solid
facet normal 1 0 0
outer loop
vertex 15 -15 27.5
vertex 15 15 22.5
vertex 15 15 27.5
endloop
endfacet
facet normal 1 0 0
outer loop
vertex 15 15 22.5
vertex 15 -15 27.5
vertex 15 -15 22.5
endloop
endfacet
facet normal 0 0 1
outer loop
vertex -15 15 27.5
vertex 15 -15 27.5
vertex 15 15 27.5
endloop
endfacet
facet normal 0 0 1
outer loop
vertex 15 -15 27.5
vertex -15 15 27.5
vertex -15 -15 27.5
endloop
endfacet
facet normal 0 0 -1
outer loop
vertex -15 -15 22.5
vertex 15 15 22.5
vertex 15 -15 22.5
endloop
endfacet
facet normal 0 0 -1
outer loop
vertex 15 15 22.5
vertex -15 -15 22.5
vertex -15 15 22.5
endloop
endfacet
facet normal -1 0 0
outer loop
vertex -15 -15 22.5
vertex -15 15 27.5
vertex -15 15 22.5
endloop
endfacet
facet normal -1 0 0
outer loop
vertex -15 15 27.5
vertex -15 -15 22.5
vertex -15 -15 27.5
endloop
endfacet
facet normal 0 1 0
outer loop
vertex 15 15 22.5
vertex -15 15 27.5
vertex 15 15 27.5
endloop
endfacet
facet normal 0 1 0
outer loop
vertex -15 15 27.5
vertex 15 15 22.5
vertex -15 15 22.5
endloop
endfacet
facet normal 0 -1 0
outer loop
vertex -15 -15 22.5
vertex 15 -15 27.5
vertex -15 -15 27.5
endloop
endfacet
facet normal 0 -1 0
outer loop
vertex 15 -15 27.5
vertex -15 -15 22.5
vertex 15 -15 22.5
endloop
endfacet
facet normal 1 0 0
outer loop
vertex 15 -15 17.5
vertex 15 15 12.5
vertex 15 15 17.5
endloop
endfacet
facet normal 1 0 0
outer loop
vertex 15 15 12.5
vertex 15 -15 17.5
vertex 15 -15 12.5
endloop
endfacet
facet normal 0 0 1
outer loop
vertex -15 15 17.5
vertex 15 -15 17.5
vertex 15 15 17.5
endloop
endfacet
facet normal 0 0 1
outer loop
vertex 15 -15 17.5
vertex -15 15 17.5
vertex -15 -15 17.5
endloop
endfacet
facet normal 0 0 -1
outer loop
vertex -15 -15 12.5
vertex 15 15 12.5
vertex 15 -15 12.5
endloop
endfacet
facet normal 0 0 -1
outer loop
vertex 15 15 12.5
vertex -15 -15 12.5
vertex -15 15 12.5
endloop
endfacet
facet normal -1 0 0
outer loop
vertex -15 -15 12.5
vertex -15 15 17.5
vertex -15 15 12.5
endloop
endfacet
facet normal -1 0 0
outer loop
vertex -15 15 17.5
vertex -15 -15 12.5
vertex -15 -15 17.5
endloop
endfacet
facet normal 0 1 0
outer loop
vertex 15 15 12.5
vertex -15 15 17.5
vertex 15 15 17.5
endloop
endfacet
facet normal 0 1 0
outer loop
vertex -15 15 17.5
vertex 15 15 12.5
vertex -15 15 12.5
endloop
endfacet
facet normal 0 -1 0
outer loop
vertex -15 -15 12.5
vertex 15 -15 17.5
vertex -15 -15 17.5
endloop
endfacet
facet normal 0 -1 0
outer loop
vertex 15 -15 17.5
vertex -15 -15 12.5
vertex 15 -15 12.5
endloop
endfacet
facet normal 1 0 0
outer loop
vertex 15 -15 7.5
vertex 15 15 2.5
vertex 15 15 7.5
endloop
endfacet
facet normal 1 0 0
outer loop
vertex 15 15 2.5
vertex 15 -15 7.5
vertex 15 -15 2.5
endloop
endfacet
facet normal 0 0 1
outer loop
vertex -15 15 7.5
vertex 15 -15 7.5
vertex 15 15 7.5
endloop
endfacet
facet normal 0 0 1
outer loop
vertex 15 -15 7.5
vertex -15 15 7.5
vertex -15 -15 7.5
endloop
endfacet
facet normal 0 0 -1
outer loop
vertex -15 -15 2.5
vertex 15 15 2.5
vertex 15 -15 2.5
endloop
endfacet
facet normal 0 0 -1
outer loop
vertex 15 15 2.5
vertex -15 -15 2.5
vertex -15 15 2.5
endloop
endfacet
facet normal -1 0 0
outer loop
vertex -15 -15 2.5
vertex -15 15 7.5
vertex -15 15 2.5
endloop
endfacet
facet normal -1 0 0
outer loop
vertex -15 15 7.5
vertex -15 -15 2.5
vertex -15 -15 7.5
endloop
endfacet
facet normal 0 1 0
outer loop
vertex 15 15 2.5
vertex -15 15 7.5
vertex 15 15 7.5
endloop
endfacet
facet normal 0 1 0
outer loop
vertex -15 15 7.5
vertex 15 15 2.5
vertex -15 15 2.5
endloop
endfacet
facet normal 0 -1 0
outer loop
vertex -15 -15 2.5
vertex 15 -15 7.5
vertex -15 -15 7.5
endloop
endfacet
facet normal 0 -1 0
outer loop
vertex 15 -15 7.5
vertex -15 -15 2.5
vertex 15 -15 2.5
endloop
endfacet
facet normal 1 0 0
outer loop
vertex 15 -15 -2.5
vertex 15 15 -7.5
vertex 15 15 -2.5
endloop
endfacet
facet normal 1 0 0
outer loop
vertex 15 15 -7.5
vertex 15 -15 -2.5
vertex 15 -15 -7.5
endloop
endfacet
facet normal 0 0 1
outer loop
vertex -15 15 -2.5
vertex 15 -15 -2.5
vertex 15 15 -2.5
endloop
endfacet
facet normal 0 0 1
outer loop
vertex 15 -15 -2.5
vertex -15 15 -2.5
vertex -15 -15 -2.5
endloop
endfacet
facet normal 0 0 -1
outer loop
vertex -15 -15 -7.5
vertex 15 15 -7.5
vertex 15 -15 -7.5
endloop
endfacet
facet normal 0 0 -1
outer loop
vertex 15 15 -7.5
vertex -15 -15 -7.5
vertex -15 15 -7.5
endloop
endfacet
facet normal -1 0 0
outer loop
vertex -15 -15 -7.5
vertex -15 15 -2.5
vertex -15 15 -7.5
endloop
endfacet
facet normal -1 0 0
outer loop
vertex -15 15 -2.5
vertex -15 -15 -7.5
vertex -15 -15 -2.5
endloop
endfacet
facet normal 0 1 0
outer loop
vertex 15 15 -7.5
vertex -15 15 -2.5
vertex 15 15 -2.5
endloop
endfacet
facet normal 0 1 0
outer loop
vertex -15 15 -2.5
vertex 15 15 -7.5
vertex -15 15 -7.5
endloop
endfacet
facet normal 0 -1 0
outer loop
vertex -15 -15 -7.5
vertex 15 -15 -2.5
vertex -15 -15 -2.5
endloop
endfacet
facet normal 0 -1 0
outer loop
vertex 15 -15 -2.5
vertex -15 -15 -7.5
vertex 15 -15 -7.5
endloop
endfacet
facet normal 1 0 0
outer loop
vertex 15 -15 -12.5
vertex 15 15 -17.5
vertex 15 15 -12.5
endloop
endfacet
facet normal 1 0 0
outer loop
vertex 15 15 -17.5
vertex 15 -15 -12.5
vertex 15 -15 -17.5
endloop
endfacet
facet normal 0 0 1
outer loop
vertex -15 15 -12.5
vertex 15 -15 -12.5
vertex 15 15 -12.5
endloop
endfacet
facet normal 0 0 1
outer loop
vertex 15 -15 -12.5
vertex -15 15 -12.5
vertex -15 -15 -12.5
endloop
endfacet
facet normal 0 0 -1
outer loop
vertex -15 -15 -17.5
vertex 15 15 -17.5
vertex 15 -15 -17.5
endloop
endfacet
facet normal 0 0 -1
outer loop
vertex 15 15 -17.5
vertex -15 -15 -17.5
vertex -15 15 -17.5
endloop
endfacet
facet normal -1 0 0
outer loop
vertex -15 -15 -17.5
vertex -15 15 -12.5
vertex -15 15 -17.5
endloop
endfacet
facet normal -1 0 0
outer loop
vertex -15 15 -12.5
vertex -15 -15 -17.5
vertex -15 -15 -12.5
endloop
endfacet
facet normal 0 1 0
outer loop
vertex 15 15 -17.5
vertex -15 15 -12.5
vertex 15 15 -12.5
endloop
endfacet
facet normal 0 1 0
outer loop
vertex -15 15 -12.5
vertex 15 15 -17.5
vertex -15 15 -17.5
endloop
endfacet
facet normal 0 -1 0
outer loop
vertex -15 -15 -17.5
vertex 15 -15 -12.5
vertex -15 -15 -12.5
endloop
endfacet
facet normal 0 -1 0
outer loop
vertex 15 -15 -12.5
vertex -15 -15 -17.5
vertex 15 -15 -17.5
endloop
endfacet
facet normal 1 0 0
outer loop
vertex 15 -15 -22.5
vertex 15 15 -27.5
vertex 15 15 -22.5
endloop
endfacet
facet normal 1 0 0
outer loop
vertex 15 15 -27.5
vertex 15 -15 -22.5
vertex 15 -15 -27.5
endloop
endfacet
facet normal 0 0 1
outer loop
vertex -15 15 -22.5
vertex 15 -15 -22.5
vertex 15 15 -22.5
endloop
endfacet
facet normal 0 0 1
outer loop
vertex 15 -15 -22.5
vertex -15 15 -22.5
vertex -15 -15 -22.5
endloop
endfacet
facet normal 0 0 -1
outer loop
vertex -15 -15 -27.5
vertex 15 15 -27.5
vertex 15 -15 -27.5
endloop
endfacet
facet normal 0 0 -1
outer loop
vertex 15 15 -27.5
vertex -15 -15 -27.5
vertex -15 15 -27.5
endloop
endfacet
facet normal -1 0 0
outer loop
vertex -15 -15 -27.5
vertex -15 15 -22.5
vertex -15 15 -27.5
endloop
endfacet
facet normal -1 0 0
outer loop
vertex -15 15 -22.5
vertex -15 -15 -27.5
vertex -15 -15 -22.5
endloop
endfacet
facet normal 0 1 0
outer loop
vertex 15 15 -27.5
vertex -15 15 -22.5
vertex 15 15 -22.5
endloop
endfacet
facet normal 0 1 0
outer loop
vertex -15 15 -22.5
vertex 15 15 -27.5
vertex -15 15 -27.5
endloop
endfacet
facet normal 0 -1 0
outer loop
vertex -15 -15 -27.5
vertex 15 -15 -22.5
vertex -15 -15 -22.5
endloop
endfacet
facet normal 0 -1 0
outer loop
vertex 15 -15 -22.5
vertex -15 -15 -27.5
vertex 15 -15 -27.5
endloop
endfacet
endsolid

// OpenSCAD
// Define the dimensions of rectangular blocks
block_sizes = [
    [30, 30, 5],  // rectangular_block_1: [width, depth, height]
    [30, 30, 5],  // rectangular_block_2: [width, depth, height]
    [30, 30, 5],  // rectangular_block_3: [width, depth, height]
    [30, 30, 5],  // rectangular_block_4: [width, depth, height]
    [30, 30, 5],  // rectangular_block_5: [width, depth, height]
    [30, 30, 5]   // rectangular_block_6: [width, depth, height]
];

// Function to create a rectangular block with specific dimensions
module rectangular_block(size) {
    cube(size, center = true);
}

// Assemble the blocks into layers based on the graph_dict
module flexible_coupling() {
    // Layer 1: rectangular_block_6 (topmost layer)
    translate([0, 0, 25]) rectangular_block(block_sizes[5]);
    
    // Layer 2: rectangular_block_5
    translate([0, 0, 15]) rectangular_block(block_sizes[4]);
    
    // Layer 3: rectangular_block_4
    translate([0, 0, 5]) rectangular_block(block_sizes[3]);
    
    // Layer 4: rectangular_block_3
    translate([0, 0, -5]) rectangular_block(block_sizes[2]);
    
    // Layer 5: rectangular_block_2
    translate([0, 0, -15]) rectangular_block(block_sizes[1]);
    
    // Layer 6: rectangular_block_1 (bottommost layer)
    translate([0, 0, -25]) rectangular_block(block_sizes[0]);
}

// Render the flexible coupling
flexible_coupling();
